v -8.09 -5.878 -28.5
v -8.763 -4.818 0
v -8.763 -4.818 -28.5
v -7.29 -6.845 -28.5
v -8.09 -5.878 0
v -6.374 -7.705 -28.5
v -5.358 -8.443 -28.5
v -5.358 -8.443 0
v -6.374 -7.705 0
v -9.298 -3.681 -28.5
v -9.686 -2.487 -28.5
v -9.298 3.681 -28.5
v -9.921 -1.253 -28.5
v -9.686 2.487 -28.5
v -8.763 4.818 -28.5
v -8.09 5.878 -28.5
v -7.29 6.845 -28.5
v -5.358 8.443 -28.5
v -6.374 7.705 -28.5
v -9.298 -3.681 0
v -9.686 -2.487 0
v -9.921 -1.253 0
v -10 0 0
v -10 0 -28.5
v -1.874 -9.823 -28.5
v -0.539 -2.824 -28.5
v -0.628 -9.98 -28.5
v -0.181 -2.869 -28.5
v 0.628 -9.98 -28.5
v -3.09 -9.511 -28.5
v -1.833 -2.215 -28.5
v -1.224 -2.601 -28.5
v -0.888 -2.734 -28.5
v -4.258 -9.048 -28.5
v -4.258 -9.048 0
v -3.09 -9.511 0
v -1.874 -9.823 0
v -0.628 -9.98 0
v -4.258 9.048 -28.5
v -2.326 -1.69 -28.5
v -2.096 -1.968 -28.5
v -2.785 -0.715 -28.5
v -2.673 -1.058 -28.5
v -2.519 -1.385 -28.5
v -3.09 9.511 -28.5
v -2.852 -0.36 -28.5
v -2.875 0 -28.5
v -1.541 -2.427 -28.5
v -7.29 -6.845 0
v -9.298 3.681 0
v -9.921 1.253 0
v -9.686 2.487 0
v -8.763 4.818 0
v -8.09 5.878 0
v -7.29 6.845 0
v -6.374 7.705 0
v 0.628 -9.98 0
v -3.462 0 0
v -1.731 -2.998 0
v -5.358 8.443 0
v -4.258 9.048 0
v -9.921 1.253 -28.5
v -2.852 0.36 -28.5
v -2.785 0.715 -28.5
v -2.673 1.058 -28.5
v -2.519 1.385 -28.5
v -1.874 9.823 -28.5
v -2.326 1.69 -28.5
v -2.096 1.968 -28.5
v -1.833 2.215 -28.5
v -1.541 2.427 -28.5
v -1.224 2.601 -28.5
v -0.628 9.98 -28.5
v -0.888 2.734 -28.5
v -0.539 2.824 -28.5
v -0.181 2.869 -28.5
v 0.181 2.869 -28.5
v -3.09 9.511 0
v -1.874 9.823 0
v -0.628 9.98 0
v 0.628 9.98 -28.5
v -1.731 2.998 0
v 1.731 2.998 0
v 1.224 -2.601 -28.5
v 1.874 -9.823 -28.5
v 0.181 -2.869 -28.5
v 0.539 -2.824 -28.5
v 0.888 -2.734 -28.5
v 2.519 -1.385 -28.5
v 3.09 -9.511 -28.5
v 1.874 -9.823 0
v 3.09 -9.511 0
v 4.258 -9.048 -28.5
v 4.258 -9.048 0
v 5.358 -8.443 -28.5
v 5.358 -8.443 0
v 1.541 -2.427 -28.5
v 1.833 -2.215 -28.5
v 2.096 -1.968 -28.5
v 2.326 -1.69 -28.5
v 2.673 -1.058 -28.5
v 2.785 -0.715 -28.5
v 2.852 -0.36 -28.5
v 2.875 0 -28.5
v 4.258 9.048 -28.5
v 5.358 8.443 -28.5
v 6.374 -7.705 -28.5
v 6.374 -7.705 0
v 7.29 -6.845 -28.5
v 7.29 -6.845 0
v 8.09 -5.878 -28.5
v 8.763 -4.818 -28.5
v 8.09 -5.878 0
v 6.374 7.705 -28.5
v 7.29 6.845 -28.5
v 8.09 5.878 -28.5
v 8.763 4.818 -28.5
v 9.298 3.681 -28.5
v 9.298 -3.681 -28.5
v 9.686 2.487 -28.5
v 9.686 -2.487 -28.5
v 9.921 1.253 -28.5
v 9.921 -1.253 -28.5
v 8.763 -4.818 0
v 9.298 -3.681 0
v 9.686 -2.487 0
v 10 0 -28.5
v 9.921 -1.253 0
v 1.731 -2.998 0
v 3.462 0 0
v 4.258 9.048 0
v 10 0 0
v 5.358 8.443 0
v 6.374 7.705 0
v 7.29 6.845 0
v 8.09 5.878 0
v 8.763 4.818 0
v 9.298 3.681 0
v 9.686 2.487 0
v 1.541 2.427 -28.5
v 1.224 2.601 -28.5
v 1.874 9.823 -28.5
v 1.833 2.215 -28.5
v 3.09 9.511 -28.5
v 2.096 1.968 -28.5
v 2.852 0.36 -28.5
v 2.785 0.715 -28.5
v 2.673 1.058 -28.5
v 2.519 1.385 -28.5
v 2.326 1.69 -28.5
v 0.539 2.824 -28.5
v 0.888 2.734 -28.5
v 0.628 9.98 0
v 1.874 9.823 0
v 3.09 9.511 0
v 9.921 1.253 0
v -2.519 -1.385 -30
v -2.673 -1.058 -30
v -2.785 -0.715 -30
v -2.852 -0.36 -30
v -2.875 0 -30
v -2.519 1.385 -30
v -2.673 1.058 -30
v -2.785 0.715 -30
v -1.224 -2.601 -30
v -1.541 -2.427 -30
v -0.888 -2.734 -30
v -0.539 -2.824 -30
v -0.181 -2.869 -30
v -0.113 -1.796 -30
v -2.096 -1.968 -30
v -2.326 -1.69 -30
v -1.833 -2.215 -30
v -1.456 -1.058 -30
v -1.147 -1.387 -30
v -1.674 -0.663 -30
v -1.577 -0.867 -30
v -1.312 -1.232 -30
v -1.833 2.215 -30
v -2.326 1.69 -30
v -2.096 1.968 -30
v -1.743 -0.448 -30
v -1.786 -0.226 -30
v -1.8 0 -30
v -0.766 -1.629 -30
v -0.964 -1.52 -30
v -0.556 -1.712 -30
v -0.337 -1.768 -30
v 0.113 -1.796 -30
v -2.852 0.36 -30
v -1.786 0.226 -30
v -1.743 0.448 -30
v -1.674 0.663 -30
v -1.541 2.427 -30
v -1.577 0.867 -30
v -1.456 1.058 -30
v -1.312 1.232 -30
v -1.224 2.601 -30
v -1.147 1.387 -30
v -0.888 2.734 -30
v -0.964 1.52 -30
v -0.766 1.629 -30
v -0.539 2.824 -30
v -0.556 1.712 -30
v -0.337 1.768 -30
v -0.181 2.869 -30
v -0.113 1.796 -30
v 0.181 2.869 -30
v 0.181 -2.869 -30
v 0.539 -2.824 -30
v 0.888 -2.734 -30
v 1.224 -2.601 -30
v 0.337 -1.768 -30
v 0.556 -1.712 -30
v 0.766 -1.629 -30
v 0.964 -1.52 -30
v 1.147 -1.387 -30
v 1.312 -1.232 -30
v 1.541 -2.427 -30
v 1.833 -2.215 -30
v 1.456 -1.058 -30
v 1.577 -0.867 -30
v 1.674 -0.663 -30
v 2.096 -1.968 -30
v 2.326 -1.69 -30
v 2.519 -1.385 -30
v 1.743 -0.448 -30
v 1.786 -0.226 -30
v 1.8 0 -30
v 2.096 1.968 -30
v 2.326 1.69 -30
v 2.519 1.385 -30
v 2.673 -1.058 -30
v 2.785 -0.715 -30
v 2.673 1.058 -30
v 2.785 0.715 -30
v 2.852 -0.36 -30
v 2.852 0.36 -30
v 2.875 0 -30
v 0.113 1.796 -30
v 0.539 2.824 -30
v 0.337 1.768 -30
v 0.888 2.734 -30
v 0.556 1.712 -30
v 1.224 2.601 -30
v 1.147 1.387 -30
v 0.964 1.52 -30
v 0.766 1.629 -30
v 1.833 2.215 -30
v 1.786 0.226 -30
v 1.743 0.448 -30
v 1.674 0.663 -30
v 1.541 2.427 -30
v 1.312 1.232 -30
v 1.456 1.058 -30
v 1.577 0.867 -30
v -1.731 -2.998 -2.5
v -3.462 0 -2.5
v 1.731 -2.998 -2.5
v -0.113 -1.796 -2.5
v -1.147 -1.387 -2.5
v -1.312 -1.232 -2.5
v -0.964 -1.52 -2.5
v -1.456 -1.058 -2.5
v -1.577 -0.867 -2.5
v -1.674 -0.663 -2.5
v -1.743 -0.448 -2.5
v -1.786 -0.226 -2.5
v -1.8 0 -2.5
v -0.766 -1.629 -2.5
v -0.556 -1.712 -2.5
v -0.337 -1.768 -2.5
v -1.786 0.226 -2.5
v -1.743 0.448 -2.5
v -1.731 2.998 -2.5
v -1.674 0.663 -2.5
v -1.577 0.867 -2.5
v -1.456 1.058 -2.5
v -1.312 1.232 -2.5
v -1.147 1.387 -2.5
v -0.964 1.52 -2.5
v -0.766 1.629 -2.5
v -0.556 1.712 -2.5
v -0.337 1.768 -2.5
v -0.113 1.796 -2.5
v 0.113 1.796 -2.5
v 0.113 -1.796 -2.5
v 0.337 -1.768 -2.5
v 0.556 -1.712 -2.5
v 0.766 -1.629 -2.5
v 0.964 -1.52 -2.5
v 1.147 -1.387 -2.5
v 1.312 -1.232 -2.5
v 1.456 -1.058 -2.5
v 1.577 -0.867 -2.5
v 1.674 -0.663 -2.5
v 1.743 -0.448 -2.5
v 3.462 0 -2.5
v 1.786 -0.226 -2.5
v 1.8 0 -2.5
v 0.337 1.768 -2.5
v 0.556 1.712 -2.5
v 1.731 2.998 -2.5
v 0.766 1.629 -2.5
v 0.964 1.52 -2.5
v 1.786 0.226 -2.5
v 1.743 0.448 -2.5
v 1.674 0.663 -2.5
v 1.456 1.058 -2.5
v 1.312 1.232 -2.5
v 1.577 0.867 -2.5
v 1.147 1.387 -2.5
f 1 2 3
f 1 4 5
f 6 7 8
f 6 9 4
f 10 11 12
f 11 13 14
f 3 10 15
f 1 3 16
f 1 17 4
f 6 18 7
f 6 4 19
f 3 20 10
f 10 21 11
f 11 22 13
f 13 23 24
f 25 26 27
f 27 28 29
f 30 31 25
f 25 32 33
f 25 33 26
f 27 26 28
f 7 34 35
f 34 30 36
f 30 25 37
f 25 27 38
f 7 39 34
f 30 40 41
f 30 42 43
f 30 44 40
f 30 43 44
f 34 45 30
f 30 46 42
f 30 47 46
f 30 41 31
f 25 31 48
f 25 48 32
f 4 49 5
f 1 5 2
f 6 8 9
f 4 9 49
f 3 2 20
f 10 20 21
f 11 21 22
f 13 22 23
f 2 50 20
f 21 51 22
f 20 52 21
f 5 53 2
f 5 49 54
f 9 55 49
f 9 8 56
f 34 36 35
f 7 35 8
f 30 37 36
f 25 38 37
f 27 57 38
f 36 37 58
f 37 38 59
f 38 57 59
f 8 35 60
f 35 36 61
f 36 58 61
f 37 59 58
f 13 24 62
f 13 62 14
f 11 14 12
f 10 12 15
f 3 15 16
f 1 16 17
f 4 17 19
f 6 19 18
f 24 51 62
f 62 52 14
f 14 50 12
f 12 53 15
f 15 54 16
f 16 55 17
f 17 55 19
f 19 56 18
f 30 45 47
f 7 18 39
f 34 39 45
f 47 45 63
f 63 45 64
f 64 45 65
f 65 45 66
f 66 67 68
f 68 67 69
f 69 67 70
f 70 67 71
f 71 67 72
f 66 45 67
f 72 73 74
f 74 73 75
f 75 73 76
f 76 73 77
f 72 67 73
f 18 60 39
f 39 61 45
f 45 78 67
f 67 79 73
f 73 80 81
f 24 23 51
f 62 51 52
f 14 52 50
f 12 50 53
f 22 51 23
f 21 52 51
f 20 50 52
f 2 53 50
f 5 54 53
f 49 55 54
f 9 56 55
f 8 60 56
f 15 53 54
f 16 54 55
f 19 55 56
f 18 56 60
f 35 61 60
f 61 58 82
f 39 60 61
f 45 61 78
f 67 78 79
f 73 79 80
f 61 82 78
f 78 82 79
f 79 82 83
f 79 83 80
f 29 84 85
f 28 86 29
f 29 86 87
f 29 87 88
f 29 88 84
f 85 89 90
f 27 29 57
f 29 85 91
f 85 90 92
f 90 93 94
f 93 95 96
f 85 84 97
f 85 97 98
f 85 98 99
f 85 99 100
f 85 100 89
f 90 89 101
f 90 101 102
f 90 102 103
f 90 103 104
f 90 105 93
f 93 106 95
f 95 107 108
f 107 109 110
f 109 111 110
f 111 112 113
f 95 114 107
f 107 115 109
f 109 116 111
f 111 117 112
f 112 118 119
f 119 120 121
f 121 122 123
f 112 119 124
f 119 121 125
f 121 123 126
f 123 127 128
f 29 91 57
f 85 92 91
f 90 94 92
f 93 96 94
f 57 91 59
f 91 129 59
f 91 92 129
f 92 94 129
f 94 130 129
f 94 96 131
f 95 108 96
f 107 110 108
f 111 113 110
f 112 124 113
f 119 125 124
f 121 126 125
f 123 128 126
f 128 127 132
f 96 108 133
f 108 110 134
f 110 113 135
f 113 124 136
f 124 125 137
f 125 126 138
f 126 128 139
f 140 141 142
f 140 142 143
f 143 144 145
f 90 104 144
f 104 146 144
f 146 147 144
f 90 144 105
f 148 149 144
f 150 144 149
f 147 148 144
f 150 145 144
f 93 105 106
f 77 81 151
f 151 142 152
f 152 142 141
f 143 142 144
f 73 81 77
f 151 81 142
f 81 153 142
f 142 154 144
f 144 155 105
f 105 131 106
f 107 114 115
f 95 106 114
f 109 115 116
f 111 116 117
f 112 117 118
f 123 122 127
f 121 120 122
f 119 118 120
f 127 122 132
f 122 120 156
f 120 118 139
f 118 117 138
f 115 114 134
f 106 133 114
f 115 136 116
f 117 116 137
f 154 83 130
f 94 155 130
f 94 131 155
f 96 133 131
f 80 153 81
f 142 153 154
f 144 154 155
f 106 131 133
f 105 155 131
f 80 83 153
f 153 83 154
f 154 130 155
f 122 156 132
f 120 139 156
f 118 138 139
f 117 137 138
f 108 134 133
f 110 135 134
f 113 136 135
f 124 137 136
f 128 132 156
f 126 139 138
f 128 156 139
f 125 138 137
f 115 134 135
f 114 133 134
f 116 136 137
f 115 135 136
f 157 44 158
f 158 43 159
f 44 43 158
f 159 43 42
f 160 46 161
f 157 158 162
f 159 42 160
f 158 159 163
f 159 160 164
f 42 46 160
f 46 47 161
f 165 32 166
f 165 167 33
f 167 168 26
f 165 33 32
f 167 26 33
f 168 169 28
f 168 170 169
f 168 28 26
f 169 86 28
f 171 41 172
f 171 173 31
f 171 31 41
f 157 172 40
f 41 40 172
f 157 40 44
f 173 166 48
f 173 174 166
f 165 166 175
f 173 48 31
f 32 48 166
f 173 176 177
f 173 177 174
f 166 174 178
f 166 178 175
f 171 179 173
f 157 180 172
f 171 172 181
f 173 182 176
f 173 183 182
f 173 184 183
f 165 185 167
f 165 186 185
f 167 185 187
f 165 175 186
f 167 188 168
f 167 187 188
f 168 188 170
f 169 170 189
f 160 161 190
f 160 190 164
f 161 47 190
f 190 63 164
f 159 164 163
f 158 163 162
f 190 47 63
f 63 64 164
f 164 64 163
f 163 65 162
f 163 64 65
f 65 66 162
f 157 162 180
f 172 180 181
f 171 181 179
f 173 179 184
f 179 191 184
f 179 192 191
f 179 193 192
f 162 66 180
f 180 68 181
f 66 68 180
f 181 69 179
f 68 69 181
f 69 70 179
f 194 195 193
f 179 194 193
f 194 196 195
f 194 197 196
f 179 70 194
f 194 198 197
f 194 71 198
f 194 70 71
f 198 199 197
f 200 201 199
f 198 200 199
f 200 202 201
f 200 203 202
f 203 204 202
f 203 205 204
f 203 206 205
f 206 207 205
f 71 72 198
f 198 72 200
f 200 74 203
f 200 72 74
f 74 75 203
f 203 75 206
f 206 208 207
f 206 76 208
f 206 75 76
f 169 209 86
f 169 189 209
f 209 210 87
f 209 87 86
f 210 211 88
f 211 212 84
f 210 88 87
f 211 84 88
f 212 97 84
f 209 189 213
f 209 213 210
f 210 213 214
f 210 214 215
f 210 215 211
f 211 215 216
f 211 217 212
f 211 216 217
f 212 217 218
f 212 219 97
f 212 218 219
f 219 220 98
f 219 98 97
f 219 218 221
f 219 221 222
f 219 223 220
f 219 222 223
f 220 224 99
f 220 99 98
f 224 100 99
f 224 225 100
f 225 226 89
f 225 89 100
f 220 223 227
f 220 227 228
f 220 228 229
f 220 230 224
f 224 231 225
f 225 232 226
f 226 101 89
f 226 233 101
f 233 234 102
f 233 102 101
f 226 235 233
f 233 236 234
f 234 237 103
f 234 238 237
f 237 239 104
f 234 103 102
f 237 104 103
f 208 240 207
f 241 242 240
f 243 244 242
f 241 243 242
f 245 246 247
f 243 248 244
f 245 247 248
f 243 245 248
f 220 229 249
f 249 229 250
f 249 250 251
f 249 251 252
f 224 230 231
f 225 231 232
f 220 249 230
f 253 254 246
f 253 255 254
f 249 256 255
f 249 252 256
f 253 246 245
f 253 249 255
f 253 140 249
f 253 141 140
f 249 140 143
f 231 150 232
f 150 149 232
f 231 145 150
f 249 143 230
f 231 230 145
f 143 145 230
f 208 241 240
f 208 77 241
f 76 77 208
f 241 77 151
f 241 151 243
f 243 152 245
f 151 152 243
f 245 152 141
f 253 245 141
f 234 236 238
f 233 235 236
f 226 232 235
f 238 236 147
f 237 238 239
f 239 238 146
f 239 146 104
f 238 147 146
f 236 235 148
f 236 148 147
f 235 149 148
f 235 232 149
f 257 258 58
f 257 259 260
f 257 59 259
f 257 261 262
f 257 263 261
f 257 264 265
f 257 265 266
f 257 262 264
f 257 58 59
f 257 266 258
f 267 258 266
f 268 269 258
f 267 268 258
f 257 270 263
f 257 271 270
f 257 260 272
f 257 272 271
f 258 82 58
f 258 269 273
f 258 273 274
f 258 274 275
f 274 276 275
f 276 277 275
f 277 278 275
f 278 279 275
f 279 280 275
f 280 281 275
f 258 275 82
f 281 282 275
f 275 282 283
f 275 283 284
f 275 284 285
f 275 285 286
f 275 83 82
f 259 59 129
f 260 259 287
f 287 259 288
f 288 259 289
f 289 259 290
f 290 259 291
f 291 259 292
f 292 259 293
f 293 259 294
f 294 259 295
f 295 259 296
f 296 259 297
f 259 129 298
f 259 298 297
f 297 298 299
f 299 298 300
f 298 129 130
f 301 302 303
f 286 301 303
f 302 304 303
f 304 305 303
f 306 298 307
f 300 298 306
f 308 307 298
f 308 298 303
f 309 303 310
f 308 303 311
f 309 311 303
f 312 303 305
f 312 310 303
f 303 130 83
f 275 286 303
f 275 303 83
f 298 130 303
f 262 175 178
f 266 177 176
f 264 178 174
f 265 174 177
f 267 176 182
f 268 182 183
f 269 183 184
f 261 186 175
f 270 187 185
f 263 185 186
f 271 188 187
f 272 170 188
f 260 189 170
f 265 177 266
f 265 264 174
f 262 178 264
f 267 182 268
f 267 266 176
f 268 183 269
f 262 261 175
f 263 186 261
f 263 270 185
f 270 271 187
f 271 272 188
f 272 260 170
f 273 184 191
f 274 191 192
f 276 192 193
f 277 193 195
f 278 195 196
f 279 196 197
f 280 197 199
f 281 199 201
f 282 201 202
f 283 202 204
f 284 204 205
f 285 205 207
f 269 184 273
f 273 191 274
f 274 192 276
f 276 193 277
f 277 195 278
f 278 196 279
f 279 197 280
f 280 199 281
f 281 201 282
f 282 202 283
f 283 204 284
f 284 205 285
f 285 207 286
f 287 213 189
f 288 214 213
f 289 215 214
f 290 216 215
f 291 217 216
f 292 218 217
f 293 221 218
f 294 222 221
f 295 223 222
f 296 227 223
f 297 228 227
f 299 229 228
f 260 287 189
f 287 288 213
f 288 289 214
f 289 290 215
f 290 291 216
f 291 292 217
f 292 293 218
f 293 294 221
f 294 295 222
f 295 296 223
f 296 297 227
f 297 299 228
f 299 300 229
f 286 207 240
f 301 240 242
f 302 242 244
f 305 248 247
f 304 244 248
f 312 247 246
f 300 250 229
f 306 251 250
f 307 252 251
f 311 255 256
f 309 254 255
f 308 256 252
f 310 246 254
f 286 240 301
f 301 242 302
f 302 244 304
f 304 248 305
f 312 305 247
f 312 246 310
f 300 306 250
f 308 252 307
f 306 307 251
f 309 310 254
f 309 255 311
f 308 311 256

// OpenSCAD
$fn = 50;

difference() {
	union() {
		translate(v = [0, 0, -28.5]) {
			cylinder(h = 28.5, r = 10.0);
		}
		#translate(v = [0, 0, -30.0]) {
			cylinder(h = 30, r = 2.875);
		}
	}
	union() {
		translate(v = [0, 0, 0]) {
			rotate(a = [0, 0, 0]) {
				difference() {
					union() {
						translate(v = [0, 0, -2.5]) {
							linear_extrude(height = 2.5) {
								polygon(points = [[3.4619999999999997, 0.0], [1.7310000000000003, 2.9981799479017264], [-1.7309999999999992, 2.9981799479017264], [-3.4619999999999997, 4.2397272186481365e-16], [-1.7310000000000014, -2.998179947901726], [1.7309999999999977, -2.9981799479017277]]);
							}
						}
					}
					union();
				}
			}
		}
		#translate(v = [0, 0, -100.0]) {
			cylinder(h = 200, r = 1.8);
		}
	}
}
